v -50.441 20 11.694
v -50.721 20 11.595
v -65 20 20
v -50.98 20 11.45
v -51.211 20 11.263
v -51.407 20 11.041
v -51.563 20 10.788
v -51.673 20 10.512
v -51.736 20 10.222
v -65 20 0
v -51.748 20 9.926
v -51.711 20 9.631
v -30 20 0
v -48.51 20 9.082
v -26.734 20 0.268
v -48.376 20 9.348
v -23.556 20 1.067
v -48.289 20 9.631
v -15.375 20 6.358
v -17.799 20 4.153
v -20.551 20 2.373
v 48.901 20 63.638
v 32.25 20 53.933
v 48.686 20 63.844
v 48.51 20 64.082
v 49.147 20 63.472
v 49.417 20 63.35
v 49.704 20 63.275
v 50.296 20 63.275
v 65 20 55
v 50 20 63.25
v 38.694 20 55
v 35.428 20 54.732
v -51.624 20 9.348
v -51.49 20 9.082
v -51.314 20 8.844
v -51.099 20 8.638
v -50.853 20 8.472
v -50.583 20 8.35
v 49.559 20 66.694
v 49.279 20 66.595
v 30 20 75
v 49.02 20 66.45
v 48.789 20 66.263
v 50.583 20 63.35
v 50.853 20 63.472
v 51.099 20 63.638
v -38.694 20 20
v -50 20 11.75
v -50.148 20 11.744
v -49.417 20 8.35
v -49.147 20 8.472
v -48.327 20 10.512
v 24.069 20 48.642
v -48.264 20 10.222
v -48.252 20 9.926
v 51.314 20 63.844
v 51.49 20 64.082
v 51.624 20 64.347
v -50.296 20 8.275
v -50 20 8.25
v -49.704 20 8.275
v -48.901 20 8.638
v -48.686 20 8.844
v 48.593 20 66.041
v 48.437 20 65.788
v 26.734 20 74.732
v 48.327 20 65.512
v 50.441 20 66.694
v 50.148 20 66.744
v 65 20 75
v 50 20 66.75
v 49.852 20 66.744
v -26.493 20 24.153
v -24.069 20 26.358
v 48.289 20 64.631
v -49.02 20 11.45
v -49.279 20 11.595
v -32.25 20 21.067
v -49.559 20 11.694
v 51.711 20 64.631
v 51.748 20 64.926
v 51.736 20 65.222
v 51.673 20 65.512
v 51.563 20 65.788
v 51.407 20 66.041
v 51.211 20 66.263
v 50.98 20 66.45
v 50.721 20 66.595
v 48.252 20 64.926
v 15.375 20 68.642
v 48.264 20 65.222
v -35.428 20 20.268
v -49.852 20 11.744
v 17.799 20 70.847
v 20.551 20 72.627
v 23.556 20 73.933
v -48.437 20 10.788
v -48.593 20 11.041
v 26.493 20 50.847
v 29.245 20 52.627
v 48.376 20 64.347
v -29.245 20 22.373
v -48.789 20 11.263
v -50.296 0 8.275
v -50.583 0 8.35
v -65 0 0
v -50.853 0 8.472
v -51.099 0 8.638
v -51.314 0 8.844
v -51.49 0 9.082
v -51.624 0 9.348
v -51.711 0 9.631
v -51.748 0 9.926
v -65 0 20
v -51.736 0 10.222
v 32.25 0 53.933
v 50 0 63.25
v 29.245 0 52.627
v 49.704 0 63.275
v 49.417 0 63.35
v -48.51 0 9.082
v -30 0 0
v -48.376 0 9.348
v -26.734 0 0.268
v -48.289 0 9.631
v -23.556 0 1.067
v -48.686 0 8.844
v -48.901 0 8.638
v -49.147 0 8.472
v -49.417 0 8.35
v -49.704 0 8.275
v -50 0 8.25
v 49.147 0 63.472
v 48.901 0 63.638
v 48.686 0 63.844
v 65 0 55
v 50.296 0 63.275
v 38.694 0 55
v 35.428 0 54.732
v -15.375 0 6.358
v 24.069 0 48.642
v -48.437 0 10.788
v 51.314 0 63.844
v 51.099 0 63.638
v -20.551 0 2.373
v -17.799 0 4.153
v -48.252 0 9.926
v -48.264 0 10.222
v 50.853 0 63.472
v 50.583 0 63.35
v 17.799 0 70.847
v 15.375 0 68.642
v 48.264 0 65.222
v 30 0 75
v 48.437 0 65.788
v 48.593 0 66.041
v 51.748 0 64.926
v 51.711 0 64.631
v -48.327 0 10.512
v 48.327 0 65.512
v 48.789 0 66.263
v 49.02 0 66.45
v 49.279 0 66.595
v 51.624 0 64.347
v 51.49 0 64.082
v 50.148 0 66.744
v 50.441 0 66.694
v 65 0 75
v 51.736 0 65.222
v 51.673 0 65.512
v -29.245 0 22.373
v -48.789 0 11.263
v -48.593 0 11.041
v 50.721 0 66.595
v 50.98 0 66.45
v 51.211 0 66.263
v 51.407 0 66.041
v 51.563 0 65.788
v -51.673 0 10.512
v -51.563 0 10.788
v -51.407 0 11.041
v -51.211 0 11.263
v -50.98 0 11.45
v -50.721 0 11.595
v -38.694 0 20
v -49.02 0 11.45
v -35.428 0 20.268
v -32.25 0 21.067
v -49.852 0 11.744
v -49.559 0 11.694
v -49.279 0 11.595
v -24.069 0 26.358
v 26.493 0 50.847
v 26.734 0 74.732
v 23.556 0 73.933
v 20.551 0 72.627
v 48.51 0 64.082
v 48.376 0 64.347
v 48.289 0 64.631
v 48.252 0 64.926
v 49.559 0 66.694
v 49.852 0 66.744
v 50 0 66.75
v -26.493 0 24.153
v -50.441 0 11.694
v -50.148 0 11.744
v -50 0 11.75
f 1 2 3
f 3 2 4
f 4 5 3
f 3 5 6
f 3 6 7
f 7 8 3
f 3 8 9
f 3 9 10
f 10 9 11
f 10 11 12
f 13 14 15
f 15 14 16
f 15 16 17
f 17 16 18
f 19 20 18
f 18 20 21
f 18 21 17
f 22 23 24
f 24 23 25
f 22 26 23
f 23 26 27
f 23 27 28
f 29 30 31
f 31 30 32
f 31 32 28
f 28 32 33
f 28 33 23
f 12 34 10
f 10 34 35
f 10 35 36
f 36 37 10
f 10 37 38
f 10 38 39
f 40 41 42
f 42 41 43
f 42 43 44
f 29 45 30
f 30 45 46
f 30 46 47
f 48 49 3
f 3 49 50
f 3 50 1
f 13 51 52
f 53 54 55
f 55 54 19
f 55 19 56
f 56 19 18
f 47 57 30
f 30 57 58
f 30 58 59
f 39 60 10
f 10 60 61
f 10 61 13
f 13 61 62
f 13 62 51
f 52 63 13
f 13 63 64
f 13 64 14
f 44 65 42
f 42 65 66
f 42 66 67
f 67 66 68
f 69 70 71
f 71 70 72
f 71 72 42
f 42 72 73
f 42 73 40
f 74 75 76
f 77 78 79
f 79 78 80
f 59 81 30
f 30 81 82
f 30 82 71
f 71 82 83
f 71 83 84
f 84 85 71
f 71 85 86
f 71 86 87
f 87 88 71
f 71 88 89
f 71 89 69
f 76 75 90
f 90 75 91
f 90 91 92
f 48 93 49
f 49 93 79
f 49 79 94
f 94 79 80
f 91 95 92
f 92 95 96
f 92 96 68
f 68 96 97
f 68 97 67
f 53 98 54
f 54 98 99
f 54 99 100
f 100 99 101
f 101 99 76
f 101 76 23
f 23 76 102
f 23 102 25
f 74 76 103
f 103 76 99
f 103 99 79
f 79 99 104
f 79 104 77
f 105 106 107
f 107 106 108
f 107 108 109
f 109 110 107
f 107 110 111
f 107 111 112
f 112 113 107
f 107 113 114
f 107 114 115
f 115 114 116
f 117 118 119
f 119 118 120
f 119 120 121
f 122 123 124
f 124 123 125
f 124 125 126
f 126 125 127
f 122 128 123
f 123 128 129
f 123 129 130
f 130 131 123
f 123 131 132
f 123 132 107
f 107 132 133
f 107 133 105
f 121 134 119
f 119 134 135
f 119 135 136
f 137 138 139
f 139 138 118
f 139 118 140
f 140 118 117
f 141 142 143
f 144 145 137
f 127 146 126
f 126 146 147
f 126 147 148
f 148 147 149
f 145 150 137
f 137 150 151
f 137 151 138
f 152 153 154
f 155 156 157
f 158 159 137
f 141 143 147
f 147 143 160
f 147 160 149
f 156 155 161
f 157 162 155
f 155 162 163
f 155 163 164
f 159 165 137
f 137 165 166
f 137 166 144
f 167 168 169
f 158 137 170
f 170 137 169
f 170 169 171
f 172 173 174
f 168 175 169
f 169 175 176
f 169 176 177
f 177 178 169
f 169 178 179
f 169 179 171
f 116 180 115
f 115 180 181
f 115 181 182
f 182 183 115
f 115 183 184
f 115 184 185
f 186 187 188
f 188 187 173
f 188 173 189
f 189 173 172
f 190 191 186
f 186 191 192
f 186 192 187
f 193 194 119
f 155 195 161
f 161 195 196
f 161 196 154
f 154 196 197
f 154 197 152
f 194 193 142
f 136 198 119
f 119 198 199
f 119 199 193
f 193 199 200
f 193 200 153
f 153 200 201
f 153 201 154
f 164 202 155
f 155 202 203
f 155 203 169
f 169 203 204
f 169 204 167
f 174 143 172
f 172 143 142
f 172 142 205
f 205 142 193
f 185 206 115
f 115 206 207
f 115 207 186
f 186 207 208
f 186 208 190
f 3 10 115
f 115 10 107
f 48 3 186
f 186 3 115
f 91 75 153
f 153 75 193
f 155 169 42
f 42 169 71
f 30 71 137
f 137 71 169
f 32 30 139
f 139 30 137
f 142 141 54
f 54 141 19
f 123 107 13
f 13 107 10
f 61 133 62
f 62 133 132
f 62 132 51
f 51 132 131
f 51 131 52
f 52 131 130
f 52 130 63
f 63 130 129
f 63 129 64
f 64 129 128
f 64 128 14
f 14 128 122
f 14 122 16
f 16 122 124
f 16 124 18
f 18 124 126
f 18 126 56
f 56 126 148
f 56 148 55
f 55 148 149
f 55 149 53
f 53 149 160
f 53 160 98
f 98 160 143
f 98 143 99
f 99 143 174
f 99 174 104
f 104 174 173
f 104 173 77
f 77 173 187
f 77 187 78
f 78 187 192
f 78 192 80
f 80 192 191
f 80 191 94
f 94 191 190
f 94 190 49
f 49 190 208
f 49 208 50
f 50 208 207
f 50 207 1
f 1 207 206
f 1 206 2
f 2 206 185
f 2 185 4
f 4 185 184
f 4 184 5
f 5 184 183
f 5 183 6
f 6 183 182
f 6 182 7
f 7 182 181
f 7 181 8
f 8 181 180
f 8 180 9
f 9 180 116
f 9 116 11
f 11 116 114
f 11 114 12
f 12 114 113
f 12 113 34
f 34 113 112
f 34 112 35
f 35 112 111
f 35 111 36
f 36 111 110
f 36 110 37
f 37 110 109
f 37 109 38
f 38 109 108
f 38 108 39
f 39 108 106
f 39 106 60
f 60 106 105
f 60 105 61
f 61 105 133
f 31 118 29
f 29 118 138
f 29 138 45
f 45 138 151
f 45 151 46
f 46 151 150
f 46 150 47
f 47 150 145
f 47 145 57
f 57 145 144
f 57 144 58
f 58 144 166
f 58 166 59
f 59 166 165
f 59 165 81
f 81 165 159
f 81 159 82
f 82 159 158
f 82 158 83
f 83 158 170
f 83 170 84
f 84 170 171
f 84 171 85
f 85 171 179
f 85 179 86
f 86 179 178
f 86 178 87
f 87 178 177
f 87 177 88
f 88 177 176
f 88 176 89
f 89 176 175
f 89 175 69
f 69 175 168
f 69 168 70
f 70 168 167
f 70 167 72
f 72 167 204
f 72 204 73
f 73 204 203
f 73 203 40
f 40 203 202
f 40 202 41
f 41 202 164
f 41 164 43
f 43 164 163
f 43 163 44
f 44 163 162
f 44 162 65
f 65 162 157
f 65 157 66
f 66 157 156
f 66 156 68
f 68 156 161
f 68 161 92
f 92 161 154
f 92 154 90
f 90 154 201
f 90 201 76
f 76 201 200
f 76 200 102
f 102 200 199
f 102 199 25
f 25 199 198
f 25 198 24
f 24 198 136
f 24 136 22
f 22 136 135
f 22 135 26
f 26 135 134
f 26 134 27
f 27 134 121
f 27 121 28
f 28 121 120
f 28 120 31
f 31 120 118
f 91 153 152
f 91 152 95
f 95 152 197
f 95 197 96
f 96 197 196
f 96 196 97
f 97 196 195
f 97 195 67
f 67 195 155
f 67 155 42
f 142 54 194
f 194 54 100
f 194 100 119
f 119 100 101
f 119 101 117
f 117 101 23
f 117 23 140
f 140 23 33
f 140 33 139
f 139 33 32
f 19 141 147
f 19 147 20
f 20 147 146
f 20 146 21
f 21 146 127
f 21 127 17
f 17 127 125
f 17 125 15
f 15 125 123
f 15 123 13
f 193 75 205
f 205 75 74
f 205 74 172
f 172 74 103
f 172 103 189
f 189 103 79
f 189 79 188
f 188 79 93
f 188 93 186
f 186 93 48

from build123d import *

# Parameters (mm, degrees)
CROQUIS1_R              = 1.75
SALIENTE_EXTRUIR1_DEPTH = 20
REDONDEO1_R             = 20


with BuildPart() as part:
    # Croquis1 → Saliente-Extruir1 (new body)
    with BuildSketch(Plane(origin=(0, 0, 0), x_dir=(1, 0, 0), z_dir=(0, 1, 0))):
        Polygon((-65, 0), (-21.305768696, 0), (30, -55), (65, -55), (65, -75), (21.305768696, -75), (-30, -20), (-65, -20), align=None)
        with Locations(Location((-50, -10, 0), (0, 0, 270))):
            Circle(CROQUIS1_R, mode=Mode.SUBTRACT)
        with Locations(Location((50, -65, 0), (0, 0, 270))):
            Circle(CROQUIS1_R, mode=Mode.SUBTRACT)
    extrude(amount=SALIENTE_EXTRUIR1_DEPTH)

    # Redondeo1
    redondeo1_edges = [part.edges().sort_by_distance(p)[0] for p in [
        (-21.305768696, 10, 0),
        (30, 10, 55),
        (21.305768696, 10, 75),
        (-30, 10, 20),
    ]]
    fillet(redondeo1_edges, radius=REDONDEO1_R)


solid = part.part
